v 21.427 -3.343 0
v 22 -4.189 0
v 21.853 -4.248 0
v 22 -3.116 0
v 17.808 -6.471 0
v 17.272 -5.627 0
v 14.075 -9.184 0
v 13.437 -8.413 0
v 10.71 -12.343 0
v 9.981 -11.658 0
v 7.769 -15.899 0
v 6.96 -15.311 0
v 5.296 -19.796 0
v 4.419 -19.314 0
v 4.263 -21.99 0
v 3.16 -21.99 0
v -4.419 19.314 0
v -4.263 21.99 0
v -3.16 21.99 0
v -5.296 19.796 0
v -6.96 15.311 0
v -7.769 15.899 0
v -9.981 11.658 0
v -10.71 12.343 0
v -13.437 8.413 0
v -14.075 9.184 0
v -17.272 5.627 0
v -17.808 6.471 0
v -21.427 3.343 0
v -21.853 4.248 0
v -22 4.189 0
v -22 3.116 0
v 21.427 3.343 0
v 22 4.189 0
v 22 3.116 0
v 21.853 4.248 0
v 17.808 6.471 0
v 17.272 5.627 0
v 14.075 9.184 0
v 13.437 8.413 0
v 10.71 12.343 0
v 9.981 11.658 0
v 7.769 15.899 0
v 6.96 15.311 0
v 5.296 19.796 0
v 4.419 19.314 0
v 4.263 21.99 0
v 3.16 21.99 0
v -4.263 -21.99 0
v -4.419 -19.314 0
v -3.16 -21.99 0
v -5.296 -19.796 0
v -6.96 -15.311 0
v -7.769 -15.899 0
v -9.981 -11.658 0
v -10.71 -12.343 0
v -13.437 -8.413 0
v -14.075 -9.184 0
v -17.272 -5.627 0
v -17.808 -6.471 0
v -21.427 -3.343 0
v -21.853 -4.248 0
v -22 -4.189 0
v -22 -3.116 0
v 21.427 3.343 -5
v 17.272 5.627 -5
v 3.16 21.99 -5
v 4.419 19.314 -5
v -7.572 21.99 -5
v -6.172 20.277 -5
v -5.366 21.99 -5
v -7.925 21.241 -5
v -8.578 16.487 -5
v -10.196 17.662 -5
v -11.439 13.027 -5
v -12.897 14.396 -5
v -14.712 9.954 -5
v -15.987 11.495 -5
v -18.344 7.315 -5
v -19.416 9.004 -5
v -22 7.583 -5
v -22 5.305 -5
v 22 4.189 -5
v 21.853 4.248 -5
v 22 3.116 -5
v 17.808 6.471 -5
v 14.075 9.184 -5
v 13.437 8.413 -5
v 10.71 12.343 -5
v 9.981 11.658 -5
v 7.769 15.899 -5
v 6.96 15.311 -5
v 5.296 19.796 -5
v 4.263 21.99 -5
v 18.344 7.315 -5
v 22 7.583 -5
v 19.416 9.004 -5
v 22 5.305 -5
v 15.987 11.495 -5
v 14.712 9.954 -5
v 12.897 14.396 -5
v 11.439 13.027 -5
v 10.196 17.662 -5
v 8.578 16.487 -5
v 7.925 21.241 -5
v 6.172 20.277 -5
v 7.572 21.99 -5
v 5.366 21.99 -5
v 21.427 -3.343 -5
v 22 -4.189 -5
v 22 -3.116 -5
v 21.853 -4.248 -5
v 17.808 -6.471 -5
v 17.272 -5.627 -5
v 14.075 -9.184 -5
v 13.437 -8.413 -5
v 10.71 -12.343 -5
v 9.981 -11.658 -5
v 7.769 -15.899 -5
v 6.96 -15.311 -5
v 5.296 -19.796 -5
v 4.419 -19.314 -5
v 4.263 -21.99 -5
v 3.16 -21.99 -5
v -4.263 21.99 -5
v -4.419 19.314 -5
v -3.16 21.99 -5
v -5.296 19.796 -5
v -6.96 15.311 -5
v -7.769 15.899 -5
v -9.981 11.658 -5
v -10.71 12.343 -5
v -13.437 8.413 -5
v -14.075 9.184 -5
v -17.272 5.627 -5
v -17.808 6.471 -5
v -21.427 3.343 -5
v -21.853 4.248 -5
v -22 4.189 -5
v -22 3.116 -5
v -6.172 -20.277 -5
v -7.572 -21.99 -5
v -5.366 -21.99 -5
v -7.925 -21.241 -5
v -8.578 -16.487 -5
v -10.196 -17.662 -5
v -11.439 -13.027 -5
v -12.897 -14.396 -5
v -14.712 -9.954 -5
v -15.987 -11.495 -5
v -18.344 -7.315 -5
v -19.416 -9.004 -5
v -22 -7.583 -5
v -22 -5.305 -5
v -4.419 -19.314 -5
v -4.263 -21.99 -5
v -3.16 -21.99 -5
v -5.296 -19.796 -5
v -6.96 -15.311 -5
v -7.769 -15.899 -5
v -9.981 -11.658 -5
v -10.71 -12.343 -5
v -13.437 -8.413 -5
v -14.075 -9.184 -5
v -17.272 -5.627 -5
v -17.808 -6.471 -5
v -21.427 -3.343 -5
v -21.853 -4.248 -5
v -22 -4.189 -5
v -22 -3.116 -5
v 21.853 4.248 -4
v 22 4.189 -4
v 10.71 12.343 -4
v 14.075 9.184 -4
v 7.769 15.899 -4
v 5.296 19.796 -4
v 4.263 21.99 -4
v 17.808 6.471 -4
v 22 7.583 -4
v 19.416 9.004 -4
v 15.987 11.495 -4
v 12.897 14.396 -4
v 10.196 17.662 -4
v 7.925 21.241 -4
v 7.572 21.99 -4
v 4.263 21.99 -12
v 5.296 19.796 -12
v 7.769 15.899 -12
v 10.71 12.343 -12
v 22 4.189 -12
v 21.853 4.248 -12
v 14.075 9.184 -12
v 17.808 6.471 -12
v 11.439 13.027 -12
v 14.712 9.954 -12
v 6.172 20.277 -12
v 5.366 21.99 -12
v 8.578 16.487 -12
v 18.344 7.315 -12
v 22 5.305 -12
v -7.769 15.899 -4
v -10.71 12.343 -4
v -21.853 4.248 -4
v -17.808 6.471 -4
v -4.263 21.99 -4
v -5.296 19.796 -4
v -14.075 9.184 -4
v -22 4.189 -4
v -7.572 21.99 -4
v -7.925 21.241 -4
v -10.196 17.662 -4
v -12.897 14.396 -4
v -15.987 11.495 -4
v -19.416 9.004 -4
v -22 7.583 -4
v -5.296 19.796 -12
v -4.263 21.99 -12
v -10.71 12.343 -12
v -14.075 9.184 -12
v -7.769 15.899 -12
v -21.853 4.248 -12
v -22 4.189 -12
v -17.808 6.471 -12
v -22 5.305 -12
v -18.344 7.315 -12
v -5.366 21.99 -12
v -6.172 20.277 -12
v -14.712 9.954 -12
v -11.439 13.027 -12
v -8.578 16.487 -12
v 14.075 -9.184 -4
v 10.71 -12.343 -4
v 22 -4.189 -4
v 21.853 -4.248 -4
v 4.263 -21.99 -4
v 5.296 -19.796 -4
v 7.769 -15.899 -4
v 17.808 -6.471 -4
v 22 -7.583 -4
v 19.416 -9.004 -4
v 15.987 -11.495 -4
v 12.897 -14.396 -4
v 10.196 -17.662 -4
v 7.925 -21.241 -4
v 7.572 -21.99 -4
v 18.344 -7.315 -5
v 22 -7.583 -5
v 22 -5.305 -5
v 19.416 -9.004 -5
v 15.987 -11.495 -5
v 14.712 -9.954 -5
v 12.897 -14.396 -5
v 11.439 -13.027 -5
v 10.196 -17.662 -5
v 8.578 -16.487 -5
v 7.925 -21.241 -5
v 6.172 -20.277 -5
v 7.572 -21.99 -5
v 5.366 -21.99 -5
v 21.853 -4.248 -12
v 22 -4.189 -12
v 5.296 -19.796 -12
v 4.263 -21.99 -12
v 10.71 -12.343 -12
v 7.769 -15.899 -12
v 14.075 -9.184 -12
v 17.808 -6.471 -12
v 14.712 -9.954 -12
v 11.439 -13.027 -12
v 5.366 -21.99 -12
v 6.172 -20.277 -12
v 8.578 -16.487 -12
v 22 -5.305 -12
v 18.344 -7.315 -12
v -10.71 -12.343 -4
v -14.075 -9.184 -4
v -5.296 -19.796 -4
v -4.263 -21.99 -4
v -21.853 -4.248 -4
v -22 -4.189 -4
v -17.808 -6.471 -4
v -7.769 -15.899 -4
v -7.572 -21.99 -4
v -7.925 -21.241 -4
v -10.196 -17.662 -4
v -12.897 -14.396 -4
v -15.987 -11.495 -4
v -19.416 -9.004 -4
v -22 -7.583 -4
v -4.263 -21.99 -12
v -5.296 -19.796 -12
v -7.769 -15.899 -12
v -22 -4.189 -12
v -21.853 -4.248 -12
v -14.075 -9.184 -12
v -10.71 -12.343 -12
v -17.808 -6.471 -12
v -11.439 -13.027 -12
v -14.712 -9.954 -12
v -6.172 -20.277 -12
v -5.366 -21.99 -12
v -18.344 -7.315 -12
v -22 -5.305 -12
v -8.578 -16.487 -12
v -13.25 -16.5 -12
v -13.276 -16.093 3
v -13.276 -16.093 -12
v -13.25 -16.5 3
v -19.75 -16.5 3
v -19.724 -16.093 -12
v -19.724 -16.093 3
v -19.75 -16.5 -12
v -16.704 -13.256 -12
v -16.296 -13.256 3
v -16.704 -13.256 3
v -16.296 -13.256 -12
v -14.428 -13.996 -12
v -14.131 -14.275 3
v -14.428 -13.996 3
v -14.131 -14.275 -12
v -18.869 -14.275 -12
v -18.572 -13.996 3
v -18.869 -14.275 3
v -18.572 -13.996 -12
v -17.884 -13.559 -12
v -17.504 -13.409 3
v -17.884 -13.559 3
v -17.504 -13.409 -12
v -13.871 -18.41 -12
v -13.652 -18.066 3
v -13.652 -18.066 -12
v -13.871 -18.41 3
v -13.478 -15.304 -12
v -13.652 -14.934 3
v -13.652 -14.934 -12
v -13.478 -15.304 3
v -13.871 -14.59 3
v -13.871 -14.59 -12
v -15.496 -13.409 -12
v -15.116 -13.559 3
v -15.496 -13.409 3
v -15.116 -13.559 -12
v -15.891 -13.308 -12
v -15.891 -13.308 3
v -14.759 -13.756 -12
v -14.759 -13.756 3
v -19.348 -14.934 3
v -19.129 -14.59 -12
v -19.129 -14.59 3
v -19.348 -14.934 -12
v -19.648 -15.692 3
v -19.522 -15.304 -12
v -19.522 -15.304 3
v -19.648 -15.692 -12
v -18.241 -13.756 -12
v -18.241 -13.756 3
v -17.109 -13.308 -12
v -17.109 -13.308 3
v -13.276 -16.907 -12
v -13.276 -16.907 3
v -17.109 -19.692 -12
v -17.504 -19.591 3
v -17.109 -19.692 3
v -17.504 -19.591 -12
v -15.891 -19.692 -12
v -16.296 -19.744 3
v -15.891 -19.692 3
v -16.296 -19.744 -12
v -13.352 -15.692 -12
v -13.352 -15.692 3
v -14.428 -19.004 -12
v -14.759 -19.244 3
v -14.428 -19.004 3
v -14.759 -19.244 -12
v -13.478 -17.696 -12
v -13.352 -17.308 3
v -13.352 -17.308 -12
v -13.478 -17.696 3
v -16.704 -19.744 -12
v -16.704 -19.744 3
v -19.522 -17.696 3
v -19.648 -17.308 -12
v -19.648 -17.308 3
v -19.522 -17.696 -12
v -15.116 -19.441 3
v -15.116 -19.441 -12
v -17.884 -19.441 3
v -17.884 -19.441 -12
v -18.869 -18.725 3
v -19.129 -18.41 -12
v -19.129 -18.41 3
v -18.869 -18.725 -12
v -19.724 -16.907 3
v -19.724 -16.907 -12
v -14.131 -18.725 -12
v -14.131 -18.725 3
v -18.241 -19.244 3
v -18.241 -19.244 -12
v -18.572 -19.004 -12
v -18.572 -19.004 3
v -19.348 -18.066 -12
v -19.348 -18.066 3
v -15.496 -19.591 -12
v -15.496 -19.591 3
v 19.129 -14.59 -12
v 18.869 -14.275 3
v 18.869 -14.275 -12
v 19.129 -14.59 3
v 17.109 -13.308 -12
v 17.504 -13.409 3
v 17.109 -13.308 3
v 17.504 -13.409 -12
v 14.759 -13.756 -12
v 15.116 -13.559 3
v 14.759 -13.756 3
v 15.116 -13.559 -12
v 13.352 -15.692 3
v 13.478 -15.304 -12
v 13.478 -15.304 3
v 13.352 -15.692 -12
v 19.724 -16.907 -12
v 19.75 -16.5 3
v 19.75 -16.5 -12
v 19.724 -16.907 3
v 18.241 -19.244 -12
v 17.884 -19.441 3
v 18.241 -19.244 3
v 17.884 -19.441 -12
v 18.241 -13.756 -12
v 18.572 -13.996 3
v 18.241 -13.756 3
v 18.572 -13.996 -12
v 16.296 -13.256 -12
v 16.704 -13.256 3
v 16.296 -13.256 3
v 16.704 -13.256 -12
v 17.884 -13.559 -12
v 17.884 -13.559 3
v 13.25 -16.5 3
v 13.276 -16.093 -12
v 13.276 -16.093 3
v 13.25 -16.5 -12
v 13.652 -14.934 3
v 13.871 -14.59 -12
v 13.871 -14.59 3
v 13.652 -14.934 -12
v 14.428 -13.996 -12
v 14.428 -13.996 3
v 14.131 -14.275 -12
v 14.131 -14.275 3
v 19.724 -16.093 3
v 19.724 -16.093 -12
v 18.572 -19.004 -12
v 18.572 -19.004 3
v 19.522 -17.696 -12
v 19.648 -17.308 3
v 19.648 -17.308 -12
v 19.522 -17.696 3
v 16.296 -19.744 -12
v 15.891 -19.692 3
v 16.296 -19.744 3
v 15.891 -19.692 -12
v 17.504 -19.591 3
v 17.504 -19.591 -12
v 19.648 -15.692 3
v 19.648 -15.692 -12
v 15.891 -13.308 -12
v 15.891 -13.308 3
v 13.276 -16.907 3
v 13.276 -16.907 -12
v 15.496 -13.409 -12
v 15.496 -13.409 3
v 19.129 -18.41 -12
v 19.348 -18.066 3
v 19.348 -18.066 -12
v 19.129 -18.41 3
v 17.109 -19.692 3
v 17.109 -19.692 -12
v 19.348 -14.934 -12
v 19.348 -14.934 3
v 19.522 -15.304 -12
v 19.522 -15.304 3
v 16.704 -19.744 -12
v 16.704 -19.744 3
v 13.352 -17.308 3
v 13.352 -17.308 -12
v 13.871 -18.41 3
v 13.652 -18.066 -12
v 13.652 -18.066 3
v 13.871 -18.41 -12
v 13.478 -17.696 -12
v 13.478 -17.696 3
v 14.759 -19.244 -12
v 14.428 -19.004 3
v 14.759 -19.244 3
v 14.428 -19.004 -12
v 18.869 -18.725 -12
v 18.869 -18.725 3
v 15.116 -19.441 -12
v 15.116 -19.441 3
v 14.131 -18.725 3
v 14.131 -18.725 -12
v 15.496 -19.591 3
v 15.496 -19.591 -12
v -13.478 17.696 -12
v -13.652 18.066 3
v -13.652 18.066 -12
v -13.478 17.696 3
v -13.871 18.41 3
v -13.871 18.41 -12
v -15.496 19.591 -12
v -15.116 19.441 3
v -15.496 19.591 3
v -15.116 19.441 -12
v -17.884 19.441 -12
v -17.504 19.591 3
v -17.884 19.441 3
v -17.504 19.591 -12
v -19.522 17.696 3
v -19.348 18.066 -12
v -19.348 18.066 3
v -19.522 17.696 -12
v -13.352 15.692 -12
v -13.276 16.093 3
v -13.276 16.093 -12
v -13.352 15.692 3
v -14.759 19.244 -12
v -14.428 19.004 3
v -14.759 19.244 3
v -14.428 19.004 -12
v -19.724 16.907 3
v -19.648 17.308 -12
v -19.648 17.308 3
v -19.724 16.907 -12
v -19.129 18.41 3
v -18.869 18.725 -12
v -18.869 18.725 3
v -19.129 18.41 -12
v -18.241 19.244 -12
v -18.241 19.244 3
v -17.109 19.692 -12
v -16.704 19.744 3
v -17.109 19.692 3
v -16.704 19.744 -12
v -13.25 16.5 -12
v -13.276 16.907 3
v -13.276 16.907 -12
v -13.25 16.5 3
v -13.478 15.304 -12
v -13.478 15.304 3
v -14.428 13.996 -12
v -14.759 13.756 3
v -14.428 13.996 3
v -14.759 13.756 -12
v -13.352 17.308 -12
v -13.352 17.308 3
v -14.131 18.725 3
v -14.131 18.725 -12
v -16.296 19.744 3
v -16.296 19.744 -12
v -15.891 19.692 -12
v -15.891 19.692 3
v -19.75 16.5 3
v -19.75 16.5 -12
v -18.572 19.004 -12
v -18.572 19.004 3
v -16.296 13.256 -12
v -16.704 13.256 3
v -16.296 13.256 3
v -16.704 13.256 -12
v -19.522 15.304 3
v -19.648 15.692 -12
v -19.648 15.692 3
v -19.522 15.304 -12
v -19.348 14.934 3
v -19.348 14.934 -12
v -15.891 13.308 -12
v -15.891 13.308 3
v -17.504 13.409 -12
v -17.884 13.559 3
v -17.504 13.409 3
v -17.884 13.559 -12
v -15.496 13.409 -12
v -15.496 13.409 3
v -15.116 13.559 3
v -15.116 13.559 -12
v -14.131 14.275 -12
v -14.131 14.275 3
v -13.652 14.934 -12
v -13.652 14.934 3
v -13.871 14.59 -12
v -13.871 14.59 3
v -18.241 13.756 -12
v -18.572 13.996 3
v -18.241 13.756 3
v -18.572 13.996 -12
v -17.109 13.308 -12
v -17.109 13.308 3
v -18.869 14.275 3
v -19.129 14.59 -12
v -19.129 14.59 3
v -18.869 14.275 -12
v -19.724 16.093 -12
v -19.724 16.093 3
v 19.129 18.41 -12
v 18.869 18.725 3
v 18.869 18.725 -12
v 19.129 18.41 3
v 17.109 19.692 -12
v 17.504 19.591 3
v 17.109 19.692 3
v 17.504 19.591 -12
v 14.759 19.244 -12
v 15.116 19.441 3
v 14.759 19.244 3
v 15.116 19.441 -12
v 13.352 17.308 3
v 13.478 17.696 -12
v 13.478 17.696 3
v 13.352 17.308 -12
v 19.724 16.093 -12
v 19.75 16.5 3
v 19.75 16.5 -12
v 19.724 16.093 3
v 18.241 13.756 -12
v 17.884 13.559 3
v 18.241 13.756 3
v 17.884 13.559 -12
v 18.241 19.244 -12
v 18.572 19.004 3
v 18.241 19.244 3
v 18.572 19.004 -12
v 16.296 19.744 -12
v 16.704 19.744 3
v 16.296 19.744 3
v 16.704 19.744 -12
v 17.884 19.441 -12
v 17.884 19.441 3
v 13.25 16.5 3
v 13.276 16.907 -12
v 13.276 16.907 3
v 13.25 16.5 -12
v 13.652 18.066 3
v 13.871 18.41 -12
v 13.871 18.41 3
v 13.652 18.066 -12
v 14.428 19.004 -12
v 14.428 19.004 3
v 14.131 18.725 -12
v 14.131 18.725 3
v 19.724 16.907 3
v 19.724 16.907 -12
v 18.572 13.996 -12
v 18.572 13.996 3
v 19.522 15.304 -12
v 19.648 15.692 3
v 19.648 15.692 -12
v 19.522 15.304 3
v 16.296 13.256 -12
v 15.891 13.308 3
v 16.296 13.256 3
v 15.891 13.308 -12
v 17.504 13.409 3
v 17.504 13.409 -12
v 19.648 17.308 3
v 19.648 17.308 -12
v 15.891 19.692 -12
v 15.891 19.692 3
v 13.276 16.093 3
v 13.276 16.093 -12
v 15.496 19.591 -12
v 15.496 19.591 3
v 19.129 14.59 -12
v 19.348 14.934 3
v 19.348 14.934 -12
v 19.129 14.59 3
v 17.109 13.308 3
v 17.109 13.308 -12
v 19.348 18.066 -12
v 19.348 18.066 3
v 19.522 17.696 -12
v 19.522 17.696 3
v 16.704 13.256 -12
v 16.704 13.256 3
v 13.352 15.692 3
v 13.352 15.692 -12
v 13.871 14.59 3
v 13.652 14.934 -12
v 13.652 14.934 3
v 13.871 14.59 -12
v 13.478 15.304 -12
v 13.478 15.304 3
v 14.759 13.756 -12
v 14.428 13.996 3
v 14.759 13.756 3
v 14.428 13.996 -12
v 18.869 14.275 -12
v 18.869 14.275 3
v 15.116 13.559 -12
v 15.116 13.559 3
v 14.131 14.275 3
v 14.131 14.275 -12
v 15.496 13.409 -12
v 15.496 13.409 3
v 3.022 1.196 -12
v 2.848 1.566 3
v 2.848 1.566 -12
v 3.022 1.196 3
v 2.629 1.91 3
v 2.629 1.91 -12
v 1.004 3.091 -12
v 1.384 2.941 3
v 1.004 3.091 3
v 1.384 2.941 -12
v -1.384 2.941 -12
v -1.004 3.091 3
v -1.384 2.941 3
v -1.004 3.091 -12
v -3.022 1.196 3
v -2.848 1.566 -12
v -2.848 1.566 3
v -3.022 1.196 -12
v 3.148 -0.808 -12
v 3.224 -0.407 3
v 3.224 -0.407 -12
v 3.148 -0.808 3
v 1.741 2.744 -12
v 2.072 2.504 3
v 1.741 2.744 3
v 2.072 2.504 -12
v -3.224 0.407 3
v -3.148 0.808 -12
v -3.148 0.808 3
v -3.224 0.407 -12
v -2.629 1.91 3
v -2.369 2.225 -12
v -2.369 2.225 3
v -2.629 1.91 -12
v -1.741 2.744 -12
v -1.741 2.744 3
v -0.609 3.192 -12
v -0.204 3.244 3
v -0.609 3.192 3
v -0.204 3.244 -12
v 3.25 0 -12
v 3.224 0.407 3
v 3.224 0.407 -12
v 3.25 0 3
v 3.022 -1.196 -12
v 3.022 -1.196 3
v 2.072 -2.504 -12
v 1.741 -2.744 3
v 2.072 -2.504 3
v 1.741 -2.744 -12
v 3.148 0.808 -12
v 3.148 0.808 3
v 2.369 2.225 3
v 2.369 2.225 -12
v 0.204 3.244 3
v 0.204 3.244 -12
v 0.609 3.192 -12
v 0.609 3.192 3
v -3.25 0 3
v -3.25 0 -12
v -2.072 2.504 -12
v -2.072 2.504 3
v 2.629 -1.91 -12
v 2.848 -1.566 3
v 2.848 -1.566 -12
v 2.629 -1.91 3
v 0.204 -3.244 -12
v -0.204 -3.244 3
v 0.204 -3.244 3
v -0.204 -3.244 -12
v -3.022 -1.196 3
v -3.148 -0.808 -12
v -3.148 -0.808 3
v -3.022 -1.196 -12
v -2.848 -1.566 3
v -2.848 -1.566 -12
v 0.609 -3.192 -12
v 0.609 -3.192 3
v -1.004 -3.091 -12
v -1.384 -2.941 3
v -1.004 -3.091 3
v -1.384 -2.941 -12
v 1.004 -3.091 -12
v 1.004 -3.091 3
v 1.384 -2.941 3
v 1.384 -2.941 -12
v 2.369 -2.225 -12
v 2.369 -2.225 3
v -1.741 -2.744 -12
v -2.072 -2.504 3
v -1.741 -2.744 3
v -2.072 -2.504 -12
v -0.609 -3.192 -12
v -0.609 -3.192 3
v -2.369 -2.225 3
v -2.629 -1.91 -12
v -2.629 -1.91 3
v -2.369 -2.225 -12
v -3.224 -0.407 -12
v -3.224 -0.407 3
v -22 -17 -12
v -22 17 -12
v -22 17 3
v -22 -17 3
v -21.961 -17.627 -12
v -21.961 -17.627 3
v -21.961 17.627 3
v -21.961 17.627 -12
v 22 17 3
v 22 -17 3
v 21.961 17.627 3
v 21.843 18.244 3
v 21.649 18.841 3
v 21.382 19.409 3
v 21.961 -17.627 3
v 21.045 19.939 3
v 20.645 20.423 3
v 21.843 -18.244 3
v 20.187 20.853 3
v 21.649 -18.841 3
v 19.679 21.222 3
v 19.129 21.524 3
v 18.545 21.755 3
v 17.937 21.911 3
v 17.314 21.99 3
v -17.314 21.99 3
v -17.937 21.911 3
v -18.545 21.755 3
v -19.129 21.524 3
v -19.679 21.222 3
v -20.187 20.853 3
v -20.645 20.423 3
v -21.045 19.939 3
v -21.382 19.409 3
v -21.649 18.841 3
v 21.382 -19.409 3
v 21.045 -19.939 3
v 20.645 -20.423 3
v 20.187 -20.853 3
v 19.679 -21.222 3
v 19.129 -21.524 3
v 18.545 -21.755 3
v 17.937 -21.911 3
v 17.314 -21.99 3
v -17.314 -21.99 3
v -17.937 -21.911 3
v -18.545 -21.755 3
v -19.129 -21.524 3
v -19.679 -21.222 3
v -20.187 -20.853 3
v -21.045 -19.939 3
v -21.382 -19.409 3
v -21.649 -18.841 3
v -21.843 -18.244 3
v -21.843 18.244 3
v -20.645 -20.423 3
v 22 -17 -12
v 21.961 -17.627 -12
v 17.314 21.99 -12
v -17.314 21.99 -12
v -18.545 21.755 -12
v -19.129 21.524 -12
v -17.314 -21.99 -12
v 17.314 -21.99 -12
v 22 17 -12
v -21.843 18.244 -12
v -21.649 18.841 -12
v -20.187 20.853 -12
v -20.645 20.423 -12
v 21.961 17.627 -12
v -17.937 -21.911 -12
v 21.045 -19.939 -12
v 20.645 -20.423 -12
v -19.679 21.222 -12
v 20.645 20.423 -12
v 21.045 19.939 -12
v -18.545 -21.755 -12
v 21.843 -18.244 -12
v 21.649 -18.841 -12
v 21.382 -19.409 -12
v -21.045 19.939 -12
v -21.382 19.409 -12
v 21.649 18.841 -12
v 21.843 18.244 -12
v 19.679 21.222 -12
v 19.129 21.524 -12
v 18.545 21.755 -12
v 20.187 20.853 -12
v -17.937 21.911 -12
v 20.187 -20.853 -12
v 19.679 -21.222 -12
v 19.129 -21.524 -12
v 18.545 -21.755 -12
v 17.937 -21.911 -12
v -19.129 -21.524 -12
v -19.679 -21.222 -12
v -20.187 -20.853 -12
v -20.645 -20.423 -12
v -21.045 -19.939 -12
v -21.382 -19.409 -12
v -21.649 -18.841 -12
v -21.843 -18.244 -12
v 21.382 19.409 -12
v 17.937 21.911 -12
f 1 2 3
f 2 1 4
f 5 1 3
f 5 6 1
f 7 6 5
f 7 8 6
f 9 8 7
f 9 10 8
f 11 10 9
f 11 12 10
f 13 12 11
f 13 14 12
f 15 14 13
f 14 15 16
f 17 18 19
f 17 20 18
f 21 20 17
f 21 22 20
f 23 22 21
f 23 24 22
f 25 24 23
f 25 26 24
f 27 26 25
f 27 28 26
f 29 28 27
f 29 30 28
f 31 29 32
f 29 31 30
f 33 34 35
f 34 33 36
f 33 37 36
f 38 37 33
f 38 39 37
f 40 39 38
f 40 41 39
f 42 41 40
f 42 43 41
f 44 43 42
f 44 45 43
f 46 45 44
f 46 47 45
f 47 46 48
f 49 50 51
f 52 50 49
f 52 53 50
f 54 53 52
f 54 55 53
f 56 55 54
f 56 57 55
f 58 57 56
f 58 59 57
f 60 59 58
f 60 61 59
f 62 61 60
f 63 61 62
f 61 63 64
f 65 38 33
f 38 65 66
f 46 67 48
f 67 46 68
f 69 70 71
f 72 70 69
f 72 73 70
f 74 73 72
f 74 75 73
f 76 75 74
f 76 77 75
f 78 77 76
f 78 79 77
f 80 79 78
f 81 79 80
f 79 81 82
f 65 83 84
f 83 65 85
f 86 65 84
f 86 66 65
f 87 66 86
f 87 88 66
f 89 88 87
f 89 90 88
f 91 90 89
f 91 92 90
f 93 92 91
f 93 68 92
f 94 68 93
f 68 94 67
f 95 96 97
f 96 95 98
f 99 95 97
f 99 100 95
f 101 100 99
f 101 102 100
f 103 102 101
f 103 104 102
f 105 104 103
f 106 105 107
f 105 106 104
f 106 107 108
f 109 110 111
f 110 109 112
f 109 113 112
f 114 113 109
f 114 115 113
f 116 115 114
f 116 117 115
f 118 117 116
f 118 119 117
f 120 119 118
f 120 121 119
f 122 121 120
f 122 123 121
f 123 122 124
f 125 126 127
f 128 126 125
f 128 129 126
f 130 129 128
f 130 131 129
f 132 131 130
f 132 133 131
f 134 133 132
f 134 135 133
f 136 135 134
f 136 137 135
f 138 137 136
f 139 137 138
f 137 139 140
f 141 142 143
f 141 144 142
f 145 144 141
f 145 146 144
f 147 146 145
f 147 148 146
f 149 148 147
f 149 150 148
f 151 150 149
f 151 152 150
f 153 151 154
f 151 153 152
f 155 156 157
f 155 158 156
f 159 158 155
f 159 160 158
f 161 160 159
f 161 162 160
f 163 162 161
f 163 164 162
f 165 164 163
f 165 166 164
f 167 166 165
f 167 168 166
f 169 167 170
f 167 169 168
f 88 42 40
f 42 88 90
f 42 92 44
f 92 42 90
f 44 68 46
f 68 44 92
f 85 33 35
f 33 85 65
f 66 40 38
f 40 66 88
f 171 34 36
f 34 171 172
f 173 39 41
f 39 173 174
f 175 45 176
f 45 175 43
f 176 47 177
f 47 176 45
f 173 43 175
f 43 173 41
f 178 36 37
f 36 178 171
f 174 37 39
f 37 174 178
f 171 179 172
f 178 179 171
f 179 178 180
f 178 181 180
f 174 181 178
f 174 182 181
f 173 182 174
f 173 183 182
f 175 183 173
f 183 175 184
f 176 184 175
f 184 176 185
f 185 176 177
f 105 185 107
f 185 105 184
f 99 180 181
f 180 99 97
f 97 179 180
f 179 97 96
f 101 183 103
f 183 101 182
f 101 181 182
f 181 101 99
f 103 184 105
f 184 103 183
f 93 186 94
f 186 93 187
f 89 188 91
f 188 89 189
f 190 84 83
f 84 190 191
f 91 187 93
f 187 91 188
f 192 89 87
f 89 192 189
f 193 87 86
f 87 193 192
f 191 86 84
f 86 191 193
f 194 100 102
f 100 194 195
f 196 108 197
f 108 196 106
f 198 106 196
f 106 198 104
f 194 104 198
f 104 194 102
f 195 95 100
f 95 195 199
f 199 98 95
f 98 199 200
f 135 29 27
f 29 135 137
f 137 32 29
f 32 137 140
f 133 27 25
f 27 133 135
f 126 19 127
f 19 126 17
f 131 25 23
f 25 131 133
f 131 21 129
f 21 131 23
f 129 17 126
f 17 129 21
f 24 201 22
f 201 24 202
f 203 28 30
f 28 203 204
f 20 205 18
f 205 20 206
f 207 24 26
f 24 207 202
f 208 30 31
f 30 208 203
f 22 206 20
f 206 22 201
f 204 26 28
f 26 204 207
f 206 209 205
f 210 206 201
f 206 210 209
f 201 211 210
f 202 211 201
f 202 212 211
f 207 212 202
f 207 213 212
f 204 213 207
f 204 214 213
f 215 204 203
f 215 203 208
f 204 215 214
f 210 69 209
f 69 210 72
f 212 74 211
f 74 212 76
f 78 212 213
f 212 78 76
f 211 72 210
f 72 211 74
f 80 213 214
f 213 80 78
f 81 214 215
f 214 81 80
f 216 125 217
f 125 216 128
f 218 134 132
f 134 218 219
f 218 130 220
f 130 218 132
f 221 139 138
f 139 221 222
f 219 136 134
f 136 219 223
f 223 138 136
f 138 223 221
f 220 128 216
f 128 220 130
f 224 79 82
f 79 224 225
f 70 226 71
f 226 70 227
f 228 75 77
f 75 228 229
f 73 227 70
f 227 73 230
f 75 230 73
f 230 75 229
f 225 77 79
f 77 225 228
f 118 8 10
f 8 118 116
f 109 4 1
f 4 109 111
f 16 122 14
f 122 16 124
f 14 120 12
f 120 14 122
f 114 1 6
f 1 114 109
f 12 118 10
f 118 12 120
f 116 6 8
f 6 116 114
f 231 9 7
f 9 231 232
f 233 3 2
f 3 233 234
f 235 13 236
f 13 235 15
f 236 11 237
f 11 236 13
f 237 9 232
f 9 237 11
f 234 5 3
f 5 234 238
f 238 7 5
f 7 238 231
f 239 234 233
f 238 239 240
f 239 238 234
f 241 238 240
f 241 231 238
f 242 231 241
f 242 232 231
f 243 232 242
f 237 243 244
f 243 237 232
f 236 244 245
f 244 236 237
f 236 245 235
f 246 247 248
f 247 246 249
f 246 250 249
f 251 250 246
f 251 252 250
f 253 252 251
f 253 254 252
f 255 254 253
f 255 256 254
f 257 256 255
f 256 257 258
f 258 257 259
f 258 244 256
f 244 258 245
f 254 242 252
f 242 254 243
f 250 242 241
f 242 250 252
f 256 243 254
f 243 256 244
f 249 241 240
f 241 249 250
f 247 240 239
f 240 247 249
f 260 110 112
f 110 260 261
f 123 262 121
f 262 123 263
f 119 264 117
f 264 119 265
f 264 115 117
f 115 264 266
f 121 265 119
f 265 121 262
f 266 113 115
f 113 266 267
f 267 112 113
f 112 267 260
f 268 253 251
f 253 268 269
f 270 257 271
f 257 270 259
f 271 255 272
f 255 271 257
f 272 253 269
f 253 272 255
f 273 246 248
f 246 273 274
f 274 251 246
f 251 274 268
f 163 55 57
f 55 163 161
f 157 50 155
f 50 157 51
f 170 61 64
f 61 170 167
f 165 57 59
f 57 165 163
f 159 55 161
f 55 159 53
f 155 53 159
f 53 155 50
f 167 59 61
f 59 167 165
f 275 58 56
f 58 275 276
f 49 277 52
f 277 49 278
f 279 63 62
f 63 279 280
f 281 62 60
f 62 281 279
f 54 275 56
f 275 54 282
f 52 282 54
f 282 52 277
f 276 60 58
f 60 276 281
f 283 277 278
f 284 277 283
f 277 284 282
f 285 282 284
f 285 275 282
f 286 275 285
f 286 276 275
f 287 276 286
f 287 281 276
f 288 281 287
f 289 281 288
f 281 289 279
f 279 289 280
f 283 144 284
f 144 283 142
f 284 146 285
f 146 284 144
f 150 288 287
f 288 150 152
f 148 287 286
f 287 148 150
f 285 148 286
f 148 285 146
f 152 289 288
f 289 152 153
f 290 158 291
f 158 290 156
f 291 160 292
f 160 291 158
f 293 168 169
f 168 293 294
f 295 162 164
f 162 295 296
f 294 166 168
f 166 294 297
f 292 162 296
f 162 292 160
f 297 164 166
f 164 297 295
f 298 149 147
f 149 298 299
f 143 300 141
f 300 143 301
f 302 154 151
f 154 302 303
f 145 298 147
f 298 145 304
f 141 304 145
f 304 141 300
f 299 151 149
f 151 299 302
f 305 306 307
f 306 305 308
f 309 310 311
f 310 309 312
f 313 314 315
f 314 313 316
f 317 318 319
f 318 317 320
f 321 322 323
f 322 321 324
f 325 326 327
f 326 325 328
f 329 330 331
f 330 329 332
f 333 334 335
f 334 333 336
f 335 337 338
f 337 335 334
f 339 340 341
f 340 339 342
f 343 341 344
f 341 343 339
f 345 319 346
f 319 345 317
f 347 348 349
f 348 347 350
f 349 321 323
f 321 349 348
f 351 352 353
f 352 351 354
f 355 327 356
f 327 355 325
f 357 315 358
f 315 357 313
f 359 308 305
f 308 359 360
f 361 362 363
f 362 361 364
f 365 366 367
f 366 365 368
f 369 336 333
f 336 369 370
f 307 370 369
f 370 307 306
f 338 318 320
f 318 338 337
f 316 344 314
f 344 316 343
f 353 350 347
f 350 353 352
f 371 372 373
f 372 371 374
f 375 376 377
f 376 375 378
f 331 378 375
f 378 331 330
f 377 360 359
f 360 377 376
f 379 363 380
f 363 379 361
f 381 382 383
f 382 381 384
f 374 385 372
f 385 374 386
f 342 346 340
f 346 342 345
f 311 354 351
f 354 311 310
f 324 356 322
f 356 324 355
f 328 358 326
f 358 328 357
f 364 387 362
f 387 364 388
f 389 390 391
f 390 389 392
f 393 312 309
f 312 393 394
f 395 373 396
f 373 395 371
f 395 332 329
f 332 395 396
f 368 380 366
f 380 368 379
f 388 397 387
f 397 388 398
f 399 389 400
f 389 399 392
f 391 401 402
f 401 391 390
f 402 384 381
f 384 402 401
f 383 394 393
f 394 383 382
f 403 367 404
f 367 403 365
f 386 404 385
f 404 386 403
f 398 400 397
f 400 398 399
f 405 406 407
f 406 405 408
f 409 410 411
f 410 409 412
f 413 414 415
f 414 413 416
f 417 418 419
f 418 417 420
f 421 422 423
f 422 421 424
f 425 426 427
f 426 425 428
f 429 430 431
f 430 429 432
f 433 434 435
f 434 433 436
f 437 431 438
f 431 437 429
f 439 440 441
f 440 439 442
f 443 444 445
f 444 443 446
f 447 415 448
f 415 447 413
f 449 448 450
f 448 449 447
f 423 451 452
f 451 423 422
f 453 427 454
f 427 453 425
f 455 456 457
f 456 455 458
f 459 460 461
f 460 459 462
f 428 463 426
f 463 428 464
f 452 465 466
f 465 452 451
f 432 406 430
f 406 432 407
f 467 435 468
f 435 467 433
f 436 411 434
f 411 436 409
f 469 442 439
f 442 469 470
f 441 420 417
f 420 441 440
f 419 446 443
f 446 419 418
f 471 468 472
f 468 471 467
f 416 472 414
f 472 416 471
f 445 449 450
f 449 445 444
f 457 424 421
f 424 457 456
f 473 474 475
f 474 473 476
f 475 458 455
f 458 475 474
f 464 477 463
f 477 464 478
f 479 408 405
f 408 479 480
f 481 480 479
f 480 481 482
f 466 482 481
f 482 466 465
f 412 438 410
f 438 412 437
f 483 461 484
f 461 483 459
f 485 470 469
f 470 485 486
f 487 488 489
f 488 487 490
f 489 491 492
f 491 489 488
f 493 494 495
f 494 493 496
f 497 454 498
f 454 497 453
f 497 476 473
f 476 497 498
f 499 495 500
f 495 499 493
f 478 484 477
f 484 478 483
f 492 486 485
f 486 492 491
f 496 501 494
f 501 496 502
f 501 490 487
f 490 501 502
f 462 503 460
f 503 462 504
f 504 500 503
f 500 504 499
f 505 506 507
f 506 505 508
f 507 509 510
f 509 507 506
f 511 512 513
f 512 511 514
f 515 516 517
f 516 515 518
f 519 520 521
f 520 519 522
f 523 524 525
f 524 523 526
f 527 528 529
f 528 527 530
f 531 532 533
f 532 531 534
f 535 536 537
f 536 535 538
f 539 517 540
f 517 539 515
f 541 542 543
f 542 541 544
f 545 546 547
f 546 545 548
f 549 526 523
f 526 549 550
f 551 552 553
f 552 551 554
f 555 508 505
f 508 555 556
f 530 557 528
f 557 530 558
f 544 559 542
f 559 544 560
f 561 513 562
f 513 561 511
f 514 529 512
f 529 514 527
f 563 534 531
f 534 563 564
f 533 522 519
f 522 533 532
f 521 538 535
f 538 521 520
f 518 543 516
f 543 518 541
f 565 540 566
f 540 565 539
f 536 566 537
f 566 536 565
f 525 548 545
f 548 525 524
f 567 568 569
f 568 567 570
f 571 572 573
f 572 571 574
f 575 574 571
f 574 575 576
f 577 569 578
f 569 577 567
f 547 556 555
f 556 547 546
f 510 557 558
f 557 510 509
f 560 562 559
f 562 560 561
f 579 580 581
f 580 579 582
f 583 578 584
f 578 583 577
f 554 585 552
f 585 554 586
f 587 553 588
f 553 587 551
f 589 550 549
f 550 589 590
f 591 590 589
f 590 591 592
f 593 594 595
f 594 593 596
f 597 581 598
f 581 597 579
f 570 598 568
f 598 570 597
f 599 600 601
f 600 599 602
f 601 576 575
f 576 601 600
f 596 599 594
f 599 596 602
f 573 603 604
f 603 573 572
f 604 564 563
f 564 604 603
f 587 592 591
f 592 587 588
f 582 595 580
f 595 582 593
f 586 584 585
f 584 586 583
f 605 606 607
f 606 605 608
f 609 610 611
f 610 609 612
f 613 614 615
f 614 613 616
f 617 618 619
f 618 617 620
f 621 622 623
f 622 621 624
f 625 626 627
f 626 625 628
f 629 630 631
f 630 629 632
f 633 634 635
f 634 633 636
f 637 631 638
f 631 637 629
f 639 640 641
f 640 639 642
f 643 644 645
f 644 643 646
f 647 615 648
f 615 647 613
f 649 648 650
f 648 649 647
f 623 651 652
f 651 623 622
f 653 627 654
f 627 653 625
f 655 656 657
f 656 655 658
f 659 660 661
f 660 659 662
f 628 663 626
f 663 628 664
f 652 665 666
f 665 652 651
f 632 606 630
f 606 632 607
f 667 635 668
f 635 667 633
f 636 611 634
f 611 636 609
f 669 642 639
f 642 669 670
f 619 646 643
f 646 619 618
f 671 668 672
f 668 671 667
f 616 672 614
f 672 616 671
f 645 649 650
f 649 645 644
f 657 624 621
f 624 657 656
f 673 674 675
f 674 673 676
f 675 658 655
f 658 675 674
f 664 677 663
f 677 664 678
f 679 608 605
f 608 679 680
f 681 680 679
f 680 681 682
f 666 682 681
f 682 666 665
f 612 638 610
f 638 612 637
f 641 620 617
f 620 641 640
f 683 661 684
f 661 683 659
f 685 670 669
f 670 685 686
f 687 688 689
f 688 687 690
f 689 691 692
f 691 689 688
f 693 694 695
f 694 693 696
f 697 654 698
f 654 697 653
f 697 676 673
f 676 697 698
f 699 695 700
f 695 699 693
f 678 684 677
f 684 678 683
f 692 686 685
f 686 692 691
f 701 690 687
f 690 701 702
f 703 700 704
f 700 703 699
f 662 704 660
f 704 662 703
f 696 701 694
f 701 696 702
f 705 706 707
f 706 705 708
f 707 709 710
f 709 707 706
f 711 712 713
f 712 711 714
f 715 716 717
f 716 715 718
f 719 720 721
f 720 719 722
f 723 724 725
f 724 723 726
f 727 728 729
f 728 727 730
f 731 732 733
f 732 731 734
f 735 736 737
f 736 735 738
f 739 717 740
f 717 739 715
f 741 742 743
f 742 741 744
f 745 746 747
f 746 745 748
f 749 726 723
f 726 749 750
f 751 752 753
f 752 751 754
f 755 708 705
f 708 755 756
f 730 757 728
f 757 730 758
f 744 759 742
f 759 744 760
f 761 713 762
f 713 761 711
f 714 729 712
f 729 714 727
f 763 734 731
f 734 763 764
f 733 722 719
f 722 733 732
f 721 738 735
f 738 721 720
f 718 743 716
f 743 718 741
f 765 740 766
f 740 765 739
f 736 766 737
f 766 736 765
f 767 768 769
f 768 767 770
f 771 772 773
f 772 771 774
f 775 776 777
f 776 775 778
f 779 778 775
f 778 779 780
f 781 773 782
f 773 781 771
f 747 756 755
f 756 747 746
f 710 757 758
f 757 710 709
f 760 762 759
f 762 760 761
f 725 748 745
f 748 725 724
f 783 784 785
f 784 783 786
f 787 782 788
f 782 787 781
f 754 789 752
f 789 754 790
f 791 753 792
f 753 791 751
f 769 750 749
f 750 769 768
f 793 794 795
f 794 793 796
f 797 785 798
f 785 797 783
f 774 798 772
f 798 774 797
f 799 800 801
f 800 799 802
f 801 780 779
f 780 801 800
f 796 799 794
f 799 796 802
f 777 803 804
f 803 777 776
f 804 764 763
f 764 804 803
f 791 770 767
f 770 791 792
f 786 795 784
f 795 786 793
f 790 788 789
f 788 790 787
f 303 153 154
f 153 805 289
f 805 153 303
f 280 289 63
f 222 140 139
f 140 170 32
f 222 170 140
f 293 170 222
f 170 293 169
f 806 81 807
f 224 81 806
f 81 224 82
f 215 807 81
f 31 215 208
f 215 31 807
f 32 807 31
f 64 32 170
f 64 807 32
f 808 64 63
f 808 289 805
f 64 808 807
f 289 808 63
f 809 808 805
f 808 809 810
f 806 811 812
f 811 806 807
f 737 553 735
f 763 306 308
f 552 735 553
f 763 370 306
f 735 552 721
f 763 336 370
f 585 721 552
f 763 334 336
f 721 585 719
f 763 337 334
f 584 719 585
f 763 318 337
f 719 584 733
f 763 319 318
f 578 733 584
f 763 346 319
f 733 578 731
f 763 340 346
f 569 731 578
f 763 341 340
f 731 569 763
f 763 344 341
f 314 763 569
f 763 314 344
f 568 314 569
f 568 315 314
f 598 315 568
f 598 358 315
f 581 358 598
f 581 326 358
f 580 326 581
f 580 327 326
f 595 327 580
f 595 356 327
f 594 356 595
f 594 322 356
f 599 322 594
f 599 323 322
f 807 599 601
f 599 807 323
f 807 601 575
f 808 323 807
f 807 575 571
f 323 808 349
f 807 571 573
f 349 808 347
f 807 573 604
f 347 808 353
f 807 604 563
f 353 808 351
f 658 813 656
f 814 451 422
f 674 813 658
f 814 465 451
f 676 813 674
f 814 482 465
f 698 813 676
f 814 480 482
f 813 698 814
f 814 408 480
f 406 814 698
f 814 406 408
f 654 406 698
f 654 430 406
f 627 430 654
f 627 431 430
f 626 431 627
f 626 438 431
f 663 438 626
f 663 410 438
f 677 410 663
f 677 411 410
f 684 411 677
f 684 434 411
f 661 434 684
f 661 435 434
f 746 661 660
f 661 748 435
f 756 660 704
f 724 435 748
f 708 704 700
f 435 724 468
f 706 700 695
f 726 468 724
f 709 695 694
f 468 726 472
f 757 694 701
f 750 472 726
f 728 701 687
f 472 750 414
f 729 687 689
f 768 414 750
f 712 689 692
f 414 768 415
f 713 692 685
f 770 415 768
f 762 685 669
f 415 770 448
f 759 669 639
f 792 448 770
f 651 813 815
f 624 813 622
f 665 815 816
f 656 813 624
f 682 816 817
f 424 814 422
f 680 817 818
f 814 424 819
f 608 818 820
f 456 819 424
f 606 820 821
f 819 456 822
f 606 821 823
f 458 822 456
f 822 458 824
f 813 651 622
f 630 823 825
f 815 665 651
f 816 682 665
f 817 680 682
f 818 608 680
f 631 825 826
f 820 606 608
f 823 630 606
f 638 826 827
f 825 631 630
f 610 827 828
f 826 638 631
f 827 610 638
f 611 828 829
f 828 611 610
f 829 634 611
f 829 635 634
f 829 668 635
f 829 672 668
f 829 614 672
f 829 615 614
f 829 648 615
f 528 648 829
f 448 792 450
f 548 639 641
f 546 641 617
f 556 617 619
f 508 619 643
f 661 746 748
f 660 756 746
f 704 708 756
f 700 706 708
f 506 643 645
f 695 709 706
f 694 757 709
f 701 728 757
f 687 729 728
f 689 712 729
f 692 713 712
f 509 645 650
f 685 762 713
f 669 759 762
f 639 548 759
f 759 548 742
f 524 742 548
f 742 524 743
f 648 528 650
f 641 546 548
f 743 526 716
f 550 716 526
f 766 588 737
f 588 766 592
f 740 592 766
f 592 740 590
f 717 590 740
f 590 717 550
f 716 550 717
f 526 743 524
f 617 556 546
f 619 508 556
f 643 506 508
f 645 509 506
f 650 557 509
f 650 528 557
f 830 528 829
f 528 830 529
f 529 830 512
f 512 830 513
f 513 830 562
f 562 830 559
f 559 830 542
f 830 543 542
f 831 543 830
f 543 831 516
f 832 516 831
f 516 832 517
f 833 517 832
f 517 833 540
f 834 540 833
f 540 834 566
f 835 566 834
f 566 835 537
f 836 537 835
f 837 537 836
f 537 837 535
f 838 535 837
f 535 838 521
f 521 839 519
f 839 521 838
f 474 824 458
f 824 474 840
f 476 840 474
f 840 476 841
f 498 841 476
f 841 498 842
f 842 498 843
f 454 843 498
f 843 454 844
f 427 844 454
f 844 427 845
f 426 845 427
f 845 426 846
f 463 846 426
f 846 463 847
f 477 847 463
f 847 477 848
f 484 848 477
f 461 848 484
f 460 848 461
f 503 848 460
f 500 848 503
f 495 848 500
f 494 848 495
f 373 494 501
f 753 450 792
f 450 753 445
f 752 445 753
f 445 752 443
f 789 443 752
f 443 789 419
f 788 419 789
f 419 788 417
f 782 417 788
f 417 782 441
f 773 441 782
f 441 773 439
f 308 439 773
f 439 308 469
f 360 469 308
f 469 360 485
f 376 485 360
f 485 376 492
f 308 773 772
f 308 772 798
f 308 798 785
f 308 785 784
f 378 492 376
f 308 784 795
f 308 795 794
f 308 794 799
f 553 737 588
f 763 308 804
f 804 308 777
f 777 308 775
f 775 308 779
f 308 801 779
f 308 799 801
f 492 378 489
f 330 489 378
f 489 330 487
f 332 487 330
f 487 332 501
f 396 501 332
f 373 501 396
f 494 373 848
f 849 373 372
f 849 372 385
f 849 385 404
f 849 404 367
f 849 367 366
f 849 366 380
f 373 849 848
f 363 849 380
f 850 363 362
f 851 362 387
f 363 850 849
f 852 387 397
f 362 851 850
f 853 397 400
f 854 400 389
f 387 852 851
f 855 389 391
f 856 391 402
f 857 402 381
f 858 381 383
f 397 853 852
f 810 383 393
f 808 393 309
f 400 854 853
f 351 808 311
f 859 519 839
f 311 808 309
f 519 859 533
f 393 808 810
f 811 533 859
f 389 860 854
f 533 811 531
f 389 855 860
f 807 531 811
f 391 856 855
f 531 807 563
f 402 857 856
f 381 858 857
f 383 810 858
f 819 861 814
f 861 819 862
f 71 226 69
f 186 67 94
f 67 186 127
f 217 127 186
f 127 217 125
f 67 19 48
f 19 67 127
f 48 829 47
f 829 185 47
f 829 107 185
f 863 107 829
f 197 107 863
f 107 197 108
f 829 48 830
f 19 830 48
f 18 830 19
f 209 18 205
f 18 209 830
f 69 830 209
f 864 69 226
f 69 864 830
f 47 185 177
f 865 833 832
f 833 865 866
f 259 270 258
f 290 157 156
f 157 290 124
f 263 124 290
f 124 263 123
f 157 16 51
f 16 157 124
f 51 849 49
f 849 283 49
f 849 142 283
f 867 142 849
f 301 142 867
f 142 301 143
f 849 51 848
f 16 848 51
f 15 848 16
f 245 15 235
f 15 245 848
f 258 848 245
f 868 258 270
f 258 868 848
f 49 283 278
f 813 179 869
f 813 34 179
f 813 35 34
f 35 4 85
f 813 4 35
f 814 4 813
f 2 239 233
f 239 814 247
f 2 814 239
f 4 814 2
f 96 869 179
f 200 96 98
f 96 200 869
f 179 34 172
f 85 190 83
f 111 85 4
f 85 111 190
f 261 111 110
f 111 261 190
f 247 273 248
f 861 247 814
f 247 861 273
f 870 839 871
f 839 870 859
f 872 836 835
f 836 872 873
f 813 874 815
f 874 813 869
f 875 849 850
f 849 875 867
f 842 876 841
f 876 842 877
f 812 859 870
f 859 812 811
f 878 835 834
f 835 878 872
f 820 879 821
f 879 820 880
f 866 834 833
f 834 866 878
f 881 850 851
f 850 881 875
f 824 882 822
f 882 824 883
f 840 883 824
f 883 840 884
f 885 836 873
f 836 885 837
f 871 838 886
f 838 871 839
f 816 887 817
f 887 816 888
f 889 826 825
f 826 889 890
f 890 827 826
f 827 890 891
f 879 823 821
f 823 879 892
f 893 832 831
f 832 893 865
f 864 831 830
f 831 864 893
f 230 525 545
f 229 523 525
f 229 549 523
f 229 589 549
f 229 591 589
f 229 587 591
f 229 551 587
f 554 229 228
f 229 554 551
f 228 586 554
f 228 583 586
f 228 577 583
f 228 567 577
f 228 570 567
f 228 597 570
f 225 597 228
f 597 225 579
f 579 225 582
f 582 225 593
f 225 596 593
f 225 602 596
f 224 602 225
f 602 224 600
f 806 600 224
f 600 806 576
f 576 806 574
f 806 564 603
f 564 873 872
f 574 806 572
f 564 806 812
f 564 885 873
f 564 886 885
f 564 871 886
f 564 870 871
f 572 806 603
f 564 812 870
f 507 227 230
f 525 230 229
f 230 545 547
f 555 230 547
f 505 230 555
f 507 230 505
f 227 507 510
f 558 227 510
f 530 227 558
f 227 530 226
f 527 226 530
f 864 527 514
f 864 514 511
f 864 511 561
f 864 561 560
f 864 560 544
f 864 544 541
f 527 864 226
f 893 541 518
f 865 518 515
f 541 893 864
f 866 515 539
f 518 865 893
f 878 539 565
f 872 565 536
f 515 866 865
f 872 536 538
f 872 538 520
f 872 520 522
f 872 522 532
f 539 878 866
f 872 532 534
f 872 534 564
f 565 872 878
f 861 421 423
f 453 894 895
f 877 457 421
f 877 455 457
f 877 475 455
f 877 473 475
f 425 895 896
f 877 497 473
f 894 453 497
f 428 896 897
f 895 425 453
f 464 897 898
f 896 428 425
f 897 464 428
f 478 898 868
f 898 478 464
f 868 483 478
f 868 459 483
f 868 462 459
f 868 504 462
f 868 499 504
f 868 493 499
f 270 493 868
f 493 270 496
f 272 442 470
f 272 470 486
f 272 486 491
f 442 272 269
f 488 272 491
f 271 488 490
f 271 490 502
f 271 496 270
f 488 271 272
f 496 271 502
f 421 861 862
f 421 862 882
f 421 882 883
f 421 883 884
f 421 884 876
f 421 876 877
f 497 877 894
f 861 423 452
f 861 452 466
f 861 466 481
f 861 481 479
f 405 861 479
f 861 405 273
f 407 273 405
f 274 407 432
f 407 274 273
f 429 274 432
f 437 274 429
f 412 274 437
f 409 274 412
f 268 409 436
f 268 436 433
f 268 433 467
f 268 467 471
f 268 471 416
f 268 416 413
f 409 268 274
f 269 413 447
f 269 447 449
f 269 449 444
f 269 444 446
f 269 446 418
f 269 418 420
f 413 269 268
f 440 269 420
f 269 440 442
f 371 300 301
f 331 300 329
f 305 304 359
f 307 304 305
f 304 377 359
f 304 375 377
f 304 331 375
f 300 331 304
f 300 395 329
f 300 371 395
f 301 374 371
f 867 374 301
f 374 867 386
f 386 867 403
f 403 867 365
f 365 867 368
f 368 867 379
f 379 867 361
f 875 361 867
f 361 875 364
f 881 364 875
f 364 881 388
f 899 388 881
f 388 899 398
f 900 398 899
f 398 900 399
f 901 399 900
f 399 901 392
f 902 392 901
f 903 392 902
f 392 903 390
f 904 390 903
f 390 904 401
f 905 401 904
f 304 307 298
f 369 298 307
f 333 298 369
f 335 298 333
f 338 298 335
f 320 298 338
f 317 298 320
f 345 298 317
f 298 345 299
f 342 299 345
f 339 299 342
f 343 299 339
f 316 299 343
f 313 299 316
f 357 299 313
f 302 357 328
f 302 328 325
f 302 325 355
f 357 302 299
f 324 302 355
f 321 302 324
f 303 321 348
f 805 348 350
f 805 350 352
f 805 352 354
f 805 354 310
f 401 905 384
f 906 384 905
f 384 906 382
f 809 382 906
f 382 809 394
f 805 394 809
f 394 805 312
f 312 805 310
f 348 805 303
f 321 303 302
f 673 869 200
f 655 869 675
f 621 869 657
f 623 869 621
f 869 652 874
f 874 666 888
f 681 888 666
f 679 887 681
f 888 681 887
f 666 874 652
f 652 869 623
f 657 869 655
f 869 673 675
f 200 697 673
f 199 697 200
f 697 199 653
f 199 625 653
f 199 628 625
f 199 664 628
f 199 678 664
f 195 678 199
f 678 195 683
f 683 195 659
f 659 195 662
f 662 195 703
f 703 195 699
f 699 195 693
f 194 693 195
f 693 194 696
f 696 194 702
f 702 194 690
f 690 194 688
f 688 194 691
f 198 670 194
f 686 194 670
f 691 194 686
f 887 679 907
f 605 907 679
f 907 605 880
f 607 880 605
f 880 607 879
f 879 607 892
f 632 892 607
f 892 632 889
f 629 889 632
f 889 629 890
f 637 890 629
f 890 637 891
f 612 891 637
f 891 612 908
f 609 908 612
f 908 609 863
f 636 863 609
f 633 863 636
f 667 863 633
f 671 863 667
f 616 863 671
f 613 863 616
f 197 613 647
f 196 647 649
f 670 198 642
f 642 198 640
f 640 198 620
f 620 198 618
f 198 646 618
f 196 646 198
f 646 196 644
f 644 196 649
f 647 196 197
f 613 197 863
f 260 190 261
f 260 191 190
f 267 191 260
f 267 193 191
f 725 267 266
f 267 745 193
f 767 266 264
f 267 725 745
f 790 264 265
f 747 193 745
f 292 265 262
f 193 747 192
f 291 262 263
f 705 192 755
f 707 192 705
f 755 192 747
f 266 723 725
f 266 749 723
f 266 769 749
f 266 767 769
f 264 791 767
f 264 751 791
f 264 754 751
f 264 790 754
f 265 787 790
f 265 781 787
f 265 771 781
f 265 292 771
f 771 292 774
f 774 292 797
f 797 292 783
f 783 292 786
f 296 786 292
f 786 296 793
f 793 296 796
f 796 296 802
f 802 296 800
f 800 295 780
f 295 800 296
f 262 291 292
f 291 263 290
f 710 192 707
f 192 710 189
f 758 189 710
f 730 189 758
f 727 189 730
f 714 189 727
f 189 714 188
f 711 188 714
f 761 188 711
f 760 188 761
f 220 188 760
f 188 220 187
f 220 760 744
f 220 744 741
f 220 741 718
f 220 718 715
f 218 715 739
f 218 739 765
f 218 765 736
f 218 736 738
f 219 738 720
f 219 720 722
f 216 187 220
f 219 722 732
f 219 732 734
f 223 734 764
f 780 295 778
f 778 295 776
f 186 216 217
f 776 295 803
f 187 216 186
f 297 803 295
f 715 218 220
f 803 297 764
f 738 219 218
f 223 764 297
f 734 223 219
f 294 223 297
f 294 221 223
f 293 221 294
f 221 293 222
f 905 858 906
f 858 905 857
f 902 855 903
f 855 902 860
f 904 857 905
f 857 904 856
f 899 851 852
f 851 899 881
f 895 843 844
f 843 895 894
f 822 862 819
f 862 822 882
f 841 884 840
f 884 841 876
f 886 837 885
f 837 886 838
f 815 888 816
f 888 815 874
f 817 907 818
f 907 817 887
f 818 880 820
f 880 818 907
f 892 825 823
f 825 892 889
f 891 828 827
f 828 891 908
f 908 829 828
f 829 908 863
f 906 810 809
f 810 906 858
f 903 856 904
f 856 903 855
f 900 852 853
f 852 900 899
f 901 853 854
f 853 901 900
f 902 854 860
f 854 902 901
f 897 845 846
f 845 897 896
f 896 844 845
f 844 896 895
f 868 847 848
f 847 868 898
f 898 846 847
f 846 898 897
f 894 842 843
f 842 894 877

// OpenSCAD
$fn = 50;


difference() {
	union() {
		translate(v = [0, 0, -12]) {
			hull() {
				translate(v = [-17.0000000000, 17.0000000000, 0]) {
					cylinder(h = 15, r = 5);
				}
				translate(v = [17.0000000000, 17.0000000000, 0]) {
					cylinder(h = 15, r = 5);
				}
				translate(v = [-17.0000000000, -17.0000000000, 0]) {
					cylinder(h = 15, r = 5);
				}
				translate(v = [17.0000000000, -17.0000000000, 0]) {
					cylinder(h = 15, r = 5);
				}
			}
		}
	}
	union() {
		translate(v = [37.5000000000, 37.5000000000, -5]) {
			rotate(a = [0, 0, 0]) {
				difference() {
					union() {
						cylinder(h = 5, r = 37.7500000000);
					}
					union() {
						cylinder(h = 5, r = 36.7500000000);
					}
				}
			}
		}
		#translate(v = [37.5000000000, 37.5000000000, -5]) {
			rotate(a = [0, 0, 0]) {
				difference() {
					union() {
						cylinder(h = 1, r = 36.7500000000);
					}
					union() {
						cylinder(h = 1, r = 33.7500000000);
					}
				}
			}
		}
		translate(v = [37.5000000000, 37.5000000000, -106]) {
			rotate(a = [0, 0, 0]) {
				difference() {
					union() {
						cylinder(h = 101, r = 36.7500000000);
					}
					union() {
						cylinder(h = 101, r = 35.7500000000);
					}
				}
			}
		}
		translate(v = [37.5000000000, 37.5000000000, -109]) {
			rotate(a = [0, 0, 0]) {
				difference() {
					union() {
						cylinder(h = 3, r = 36.7500000000);
					}
					union() {
						cylinder(h = 3, r = 35.7500000000);
					}
				}
			}
		}
		translate(v = [-37.5000000000, 37.5000000000, -5]) {
			rotate(a = [0, 0, 0]) {
				difference() {
					union() {
						cylinder(h = 5, r = 37.7500000000);
					}
					union() {
						cylinder(h = 5, r = 36.7500000000);
					}
				}
			}
		}
		#translate(v = [-37.5000000000, 37.5000000000, -5]) {
			rotate(a = [0, 0, 0]) {
				difference() {
					union() {
						cylinder(h = 1, r = 36.7500000000);
					}
					union() {
						cylinder(h = 1, r = 33.7500000000);
					}
				}
			}
		}
		translate(v = [-37.5000000000, 37.5000000000, -106]) {
			rotate(a = [0, 0, 0]) {
				difference() {
					union() {
						cylinder(h = 101, r = 36.7500000000);
					}
					union() {
						cylinder(h = 101, r = 35.7500000000);
					}
				}
			}
		}
		translate(v = [-37.5000000000, 37.5000000000, -109]) {
			rotate(a = [0, 0, 0]) {
				difference() {
					union() {
						cylinder(h = 3, r = 36.7500000000);
					}
					union() {
						cylinder(h = 3, r = 35.7500000000);
					}
				}
			}
		}
		translate(v = [37.5000000000, -37.5000000000, -5]) {
			rotate(a = [0, 0, 0]) {
				difference() {
					union() {
						cylinder(h = 5, r = 37.7500000000);
					}
					union() {
						cylinder(h = 5, r = 36.7500000000);
					}
				}
			}
		}
		#translate(v = [37.5000000000, -37.5000000000, -5]) {
			rotate(a = [0, 0, 0]) {
				difference() {
					union() {
						cylinder(h = 1, r = 36.7500000000);
					}
					union() {
						cylinder(h = 1, r = 33.7500000000);
					}
				}
			}
		}
		translate(v = [37.5000000000, -37.5000000000, -106]) {
			rotate(a = [0, 0, 0]) {
				difference() {
					union() {
						cylinder(h = 101, r = 36.7500000000);
					}
					union() {
						cylinder(h = 101, r = 35.7500000000);
					}
				}
			}
		}
		translate(v = [37.5000000000, -37.5000000000, -109]) {
			rotate(a = [0, 0, 0]) {
				difference() {
					union() {
						cylinder(h = 3, r = 36.7500000000);
					}
					union() {
						cylinder(h = 3, r = 35.7500000000);
					}
				}
			}
		}
		translate(v = [-37.5000000000, -37.5000000000, -5]) {
			rotate(a = [0, 0, 0]) {
				difference() {
					union() {
						cylinder(h = 5, r = 37.7500000000);
					}
					union() {
						cylinder(h = 5, r = 36.7500000000);
					}
				}
			}
		}
		#translate(v = [-37.5000000000, -37.5000000000, -5]) {
			rotate(a = [0, 0, 0]) {
				difference() {
					union() {
						cylinder(h = 1, r = 36.7500000000);
					}
					union() {
						cylinder(h = 1, r = 33.7500000000);
					}
				}
			}
		}
		translate(v = [-37.5000000000, -37.5000000000, -106]) {
			rotate(a = [0, 0, 0]) {
				difference() {
					union() {
						cylinder(h = 101, r = 36.7500000000);
					}
					union() {
						cylinder(h = 101, r = 35.7500000000);
					}
				}
			}
		}
		translate(v = [-37.5000000000, -37.5000000000, -109]) {
			rotate(a = [0, 0, 0]) {
				difference() {
					union() {
						cylinder(h = 3, r = 36.7500000000);
					}
					union() {
						cylinder(h = 3, r = 35.7500000000);
					}
				}
			}
		}
		translate(v = [37.5000000000, 37.5000000000, -106.5000000000]) {
			cylinder(h = 1, r = 36.7500000000);
		}
		translate(v = [-37.5000000000, 37.5000000000, -106.5000000000]) {
			cylinder(h = 1, r = 36.7500000000);
		}
		translate(v = [37.5000000000, -37.5000000000, -106.5000000000]) {
			cylinder(h = 1, r = 36.7500000000);
		}
		translate(v = [-37.5000000000, -37.5000000000, -106.5000000000]) {
			cylinder(h = 1, r = 36.7500000000);
		}
		translate(v = [-16.5000000000, -16.5000000000, -125.0000000000]) {
			cylinder(h = 250, r = 3.2500000000);
		}
		translate(v = [16.5000000000, -16.5000000000, -125.0000000000]) {
			cylinder(h = 250, r = 3.2500000000);
		}
		translate(v = [-16.5000000000, 16.5000000000, -125.0000000000]) {
			cylinder(h = 250, r = 3.2500000000);
		}
		translate(v = [16.5000000000, 16.5000000000, -125.0000000000]) {
			cylinder(h = 250, r = 3.2500000000);
		}
		translate(v = [0.0000000000, 0.0000000000, -125.0000000000]) {
			cylinder(h = 250, r = 3.2500000000);
		}
	}
}
